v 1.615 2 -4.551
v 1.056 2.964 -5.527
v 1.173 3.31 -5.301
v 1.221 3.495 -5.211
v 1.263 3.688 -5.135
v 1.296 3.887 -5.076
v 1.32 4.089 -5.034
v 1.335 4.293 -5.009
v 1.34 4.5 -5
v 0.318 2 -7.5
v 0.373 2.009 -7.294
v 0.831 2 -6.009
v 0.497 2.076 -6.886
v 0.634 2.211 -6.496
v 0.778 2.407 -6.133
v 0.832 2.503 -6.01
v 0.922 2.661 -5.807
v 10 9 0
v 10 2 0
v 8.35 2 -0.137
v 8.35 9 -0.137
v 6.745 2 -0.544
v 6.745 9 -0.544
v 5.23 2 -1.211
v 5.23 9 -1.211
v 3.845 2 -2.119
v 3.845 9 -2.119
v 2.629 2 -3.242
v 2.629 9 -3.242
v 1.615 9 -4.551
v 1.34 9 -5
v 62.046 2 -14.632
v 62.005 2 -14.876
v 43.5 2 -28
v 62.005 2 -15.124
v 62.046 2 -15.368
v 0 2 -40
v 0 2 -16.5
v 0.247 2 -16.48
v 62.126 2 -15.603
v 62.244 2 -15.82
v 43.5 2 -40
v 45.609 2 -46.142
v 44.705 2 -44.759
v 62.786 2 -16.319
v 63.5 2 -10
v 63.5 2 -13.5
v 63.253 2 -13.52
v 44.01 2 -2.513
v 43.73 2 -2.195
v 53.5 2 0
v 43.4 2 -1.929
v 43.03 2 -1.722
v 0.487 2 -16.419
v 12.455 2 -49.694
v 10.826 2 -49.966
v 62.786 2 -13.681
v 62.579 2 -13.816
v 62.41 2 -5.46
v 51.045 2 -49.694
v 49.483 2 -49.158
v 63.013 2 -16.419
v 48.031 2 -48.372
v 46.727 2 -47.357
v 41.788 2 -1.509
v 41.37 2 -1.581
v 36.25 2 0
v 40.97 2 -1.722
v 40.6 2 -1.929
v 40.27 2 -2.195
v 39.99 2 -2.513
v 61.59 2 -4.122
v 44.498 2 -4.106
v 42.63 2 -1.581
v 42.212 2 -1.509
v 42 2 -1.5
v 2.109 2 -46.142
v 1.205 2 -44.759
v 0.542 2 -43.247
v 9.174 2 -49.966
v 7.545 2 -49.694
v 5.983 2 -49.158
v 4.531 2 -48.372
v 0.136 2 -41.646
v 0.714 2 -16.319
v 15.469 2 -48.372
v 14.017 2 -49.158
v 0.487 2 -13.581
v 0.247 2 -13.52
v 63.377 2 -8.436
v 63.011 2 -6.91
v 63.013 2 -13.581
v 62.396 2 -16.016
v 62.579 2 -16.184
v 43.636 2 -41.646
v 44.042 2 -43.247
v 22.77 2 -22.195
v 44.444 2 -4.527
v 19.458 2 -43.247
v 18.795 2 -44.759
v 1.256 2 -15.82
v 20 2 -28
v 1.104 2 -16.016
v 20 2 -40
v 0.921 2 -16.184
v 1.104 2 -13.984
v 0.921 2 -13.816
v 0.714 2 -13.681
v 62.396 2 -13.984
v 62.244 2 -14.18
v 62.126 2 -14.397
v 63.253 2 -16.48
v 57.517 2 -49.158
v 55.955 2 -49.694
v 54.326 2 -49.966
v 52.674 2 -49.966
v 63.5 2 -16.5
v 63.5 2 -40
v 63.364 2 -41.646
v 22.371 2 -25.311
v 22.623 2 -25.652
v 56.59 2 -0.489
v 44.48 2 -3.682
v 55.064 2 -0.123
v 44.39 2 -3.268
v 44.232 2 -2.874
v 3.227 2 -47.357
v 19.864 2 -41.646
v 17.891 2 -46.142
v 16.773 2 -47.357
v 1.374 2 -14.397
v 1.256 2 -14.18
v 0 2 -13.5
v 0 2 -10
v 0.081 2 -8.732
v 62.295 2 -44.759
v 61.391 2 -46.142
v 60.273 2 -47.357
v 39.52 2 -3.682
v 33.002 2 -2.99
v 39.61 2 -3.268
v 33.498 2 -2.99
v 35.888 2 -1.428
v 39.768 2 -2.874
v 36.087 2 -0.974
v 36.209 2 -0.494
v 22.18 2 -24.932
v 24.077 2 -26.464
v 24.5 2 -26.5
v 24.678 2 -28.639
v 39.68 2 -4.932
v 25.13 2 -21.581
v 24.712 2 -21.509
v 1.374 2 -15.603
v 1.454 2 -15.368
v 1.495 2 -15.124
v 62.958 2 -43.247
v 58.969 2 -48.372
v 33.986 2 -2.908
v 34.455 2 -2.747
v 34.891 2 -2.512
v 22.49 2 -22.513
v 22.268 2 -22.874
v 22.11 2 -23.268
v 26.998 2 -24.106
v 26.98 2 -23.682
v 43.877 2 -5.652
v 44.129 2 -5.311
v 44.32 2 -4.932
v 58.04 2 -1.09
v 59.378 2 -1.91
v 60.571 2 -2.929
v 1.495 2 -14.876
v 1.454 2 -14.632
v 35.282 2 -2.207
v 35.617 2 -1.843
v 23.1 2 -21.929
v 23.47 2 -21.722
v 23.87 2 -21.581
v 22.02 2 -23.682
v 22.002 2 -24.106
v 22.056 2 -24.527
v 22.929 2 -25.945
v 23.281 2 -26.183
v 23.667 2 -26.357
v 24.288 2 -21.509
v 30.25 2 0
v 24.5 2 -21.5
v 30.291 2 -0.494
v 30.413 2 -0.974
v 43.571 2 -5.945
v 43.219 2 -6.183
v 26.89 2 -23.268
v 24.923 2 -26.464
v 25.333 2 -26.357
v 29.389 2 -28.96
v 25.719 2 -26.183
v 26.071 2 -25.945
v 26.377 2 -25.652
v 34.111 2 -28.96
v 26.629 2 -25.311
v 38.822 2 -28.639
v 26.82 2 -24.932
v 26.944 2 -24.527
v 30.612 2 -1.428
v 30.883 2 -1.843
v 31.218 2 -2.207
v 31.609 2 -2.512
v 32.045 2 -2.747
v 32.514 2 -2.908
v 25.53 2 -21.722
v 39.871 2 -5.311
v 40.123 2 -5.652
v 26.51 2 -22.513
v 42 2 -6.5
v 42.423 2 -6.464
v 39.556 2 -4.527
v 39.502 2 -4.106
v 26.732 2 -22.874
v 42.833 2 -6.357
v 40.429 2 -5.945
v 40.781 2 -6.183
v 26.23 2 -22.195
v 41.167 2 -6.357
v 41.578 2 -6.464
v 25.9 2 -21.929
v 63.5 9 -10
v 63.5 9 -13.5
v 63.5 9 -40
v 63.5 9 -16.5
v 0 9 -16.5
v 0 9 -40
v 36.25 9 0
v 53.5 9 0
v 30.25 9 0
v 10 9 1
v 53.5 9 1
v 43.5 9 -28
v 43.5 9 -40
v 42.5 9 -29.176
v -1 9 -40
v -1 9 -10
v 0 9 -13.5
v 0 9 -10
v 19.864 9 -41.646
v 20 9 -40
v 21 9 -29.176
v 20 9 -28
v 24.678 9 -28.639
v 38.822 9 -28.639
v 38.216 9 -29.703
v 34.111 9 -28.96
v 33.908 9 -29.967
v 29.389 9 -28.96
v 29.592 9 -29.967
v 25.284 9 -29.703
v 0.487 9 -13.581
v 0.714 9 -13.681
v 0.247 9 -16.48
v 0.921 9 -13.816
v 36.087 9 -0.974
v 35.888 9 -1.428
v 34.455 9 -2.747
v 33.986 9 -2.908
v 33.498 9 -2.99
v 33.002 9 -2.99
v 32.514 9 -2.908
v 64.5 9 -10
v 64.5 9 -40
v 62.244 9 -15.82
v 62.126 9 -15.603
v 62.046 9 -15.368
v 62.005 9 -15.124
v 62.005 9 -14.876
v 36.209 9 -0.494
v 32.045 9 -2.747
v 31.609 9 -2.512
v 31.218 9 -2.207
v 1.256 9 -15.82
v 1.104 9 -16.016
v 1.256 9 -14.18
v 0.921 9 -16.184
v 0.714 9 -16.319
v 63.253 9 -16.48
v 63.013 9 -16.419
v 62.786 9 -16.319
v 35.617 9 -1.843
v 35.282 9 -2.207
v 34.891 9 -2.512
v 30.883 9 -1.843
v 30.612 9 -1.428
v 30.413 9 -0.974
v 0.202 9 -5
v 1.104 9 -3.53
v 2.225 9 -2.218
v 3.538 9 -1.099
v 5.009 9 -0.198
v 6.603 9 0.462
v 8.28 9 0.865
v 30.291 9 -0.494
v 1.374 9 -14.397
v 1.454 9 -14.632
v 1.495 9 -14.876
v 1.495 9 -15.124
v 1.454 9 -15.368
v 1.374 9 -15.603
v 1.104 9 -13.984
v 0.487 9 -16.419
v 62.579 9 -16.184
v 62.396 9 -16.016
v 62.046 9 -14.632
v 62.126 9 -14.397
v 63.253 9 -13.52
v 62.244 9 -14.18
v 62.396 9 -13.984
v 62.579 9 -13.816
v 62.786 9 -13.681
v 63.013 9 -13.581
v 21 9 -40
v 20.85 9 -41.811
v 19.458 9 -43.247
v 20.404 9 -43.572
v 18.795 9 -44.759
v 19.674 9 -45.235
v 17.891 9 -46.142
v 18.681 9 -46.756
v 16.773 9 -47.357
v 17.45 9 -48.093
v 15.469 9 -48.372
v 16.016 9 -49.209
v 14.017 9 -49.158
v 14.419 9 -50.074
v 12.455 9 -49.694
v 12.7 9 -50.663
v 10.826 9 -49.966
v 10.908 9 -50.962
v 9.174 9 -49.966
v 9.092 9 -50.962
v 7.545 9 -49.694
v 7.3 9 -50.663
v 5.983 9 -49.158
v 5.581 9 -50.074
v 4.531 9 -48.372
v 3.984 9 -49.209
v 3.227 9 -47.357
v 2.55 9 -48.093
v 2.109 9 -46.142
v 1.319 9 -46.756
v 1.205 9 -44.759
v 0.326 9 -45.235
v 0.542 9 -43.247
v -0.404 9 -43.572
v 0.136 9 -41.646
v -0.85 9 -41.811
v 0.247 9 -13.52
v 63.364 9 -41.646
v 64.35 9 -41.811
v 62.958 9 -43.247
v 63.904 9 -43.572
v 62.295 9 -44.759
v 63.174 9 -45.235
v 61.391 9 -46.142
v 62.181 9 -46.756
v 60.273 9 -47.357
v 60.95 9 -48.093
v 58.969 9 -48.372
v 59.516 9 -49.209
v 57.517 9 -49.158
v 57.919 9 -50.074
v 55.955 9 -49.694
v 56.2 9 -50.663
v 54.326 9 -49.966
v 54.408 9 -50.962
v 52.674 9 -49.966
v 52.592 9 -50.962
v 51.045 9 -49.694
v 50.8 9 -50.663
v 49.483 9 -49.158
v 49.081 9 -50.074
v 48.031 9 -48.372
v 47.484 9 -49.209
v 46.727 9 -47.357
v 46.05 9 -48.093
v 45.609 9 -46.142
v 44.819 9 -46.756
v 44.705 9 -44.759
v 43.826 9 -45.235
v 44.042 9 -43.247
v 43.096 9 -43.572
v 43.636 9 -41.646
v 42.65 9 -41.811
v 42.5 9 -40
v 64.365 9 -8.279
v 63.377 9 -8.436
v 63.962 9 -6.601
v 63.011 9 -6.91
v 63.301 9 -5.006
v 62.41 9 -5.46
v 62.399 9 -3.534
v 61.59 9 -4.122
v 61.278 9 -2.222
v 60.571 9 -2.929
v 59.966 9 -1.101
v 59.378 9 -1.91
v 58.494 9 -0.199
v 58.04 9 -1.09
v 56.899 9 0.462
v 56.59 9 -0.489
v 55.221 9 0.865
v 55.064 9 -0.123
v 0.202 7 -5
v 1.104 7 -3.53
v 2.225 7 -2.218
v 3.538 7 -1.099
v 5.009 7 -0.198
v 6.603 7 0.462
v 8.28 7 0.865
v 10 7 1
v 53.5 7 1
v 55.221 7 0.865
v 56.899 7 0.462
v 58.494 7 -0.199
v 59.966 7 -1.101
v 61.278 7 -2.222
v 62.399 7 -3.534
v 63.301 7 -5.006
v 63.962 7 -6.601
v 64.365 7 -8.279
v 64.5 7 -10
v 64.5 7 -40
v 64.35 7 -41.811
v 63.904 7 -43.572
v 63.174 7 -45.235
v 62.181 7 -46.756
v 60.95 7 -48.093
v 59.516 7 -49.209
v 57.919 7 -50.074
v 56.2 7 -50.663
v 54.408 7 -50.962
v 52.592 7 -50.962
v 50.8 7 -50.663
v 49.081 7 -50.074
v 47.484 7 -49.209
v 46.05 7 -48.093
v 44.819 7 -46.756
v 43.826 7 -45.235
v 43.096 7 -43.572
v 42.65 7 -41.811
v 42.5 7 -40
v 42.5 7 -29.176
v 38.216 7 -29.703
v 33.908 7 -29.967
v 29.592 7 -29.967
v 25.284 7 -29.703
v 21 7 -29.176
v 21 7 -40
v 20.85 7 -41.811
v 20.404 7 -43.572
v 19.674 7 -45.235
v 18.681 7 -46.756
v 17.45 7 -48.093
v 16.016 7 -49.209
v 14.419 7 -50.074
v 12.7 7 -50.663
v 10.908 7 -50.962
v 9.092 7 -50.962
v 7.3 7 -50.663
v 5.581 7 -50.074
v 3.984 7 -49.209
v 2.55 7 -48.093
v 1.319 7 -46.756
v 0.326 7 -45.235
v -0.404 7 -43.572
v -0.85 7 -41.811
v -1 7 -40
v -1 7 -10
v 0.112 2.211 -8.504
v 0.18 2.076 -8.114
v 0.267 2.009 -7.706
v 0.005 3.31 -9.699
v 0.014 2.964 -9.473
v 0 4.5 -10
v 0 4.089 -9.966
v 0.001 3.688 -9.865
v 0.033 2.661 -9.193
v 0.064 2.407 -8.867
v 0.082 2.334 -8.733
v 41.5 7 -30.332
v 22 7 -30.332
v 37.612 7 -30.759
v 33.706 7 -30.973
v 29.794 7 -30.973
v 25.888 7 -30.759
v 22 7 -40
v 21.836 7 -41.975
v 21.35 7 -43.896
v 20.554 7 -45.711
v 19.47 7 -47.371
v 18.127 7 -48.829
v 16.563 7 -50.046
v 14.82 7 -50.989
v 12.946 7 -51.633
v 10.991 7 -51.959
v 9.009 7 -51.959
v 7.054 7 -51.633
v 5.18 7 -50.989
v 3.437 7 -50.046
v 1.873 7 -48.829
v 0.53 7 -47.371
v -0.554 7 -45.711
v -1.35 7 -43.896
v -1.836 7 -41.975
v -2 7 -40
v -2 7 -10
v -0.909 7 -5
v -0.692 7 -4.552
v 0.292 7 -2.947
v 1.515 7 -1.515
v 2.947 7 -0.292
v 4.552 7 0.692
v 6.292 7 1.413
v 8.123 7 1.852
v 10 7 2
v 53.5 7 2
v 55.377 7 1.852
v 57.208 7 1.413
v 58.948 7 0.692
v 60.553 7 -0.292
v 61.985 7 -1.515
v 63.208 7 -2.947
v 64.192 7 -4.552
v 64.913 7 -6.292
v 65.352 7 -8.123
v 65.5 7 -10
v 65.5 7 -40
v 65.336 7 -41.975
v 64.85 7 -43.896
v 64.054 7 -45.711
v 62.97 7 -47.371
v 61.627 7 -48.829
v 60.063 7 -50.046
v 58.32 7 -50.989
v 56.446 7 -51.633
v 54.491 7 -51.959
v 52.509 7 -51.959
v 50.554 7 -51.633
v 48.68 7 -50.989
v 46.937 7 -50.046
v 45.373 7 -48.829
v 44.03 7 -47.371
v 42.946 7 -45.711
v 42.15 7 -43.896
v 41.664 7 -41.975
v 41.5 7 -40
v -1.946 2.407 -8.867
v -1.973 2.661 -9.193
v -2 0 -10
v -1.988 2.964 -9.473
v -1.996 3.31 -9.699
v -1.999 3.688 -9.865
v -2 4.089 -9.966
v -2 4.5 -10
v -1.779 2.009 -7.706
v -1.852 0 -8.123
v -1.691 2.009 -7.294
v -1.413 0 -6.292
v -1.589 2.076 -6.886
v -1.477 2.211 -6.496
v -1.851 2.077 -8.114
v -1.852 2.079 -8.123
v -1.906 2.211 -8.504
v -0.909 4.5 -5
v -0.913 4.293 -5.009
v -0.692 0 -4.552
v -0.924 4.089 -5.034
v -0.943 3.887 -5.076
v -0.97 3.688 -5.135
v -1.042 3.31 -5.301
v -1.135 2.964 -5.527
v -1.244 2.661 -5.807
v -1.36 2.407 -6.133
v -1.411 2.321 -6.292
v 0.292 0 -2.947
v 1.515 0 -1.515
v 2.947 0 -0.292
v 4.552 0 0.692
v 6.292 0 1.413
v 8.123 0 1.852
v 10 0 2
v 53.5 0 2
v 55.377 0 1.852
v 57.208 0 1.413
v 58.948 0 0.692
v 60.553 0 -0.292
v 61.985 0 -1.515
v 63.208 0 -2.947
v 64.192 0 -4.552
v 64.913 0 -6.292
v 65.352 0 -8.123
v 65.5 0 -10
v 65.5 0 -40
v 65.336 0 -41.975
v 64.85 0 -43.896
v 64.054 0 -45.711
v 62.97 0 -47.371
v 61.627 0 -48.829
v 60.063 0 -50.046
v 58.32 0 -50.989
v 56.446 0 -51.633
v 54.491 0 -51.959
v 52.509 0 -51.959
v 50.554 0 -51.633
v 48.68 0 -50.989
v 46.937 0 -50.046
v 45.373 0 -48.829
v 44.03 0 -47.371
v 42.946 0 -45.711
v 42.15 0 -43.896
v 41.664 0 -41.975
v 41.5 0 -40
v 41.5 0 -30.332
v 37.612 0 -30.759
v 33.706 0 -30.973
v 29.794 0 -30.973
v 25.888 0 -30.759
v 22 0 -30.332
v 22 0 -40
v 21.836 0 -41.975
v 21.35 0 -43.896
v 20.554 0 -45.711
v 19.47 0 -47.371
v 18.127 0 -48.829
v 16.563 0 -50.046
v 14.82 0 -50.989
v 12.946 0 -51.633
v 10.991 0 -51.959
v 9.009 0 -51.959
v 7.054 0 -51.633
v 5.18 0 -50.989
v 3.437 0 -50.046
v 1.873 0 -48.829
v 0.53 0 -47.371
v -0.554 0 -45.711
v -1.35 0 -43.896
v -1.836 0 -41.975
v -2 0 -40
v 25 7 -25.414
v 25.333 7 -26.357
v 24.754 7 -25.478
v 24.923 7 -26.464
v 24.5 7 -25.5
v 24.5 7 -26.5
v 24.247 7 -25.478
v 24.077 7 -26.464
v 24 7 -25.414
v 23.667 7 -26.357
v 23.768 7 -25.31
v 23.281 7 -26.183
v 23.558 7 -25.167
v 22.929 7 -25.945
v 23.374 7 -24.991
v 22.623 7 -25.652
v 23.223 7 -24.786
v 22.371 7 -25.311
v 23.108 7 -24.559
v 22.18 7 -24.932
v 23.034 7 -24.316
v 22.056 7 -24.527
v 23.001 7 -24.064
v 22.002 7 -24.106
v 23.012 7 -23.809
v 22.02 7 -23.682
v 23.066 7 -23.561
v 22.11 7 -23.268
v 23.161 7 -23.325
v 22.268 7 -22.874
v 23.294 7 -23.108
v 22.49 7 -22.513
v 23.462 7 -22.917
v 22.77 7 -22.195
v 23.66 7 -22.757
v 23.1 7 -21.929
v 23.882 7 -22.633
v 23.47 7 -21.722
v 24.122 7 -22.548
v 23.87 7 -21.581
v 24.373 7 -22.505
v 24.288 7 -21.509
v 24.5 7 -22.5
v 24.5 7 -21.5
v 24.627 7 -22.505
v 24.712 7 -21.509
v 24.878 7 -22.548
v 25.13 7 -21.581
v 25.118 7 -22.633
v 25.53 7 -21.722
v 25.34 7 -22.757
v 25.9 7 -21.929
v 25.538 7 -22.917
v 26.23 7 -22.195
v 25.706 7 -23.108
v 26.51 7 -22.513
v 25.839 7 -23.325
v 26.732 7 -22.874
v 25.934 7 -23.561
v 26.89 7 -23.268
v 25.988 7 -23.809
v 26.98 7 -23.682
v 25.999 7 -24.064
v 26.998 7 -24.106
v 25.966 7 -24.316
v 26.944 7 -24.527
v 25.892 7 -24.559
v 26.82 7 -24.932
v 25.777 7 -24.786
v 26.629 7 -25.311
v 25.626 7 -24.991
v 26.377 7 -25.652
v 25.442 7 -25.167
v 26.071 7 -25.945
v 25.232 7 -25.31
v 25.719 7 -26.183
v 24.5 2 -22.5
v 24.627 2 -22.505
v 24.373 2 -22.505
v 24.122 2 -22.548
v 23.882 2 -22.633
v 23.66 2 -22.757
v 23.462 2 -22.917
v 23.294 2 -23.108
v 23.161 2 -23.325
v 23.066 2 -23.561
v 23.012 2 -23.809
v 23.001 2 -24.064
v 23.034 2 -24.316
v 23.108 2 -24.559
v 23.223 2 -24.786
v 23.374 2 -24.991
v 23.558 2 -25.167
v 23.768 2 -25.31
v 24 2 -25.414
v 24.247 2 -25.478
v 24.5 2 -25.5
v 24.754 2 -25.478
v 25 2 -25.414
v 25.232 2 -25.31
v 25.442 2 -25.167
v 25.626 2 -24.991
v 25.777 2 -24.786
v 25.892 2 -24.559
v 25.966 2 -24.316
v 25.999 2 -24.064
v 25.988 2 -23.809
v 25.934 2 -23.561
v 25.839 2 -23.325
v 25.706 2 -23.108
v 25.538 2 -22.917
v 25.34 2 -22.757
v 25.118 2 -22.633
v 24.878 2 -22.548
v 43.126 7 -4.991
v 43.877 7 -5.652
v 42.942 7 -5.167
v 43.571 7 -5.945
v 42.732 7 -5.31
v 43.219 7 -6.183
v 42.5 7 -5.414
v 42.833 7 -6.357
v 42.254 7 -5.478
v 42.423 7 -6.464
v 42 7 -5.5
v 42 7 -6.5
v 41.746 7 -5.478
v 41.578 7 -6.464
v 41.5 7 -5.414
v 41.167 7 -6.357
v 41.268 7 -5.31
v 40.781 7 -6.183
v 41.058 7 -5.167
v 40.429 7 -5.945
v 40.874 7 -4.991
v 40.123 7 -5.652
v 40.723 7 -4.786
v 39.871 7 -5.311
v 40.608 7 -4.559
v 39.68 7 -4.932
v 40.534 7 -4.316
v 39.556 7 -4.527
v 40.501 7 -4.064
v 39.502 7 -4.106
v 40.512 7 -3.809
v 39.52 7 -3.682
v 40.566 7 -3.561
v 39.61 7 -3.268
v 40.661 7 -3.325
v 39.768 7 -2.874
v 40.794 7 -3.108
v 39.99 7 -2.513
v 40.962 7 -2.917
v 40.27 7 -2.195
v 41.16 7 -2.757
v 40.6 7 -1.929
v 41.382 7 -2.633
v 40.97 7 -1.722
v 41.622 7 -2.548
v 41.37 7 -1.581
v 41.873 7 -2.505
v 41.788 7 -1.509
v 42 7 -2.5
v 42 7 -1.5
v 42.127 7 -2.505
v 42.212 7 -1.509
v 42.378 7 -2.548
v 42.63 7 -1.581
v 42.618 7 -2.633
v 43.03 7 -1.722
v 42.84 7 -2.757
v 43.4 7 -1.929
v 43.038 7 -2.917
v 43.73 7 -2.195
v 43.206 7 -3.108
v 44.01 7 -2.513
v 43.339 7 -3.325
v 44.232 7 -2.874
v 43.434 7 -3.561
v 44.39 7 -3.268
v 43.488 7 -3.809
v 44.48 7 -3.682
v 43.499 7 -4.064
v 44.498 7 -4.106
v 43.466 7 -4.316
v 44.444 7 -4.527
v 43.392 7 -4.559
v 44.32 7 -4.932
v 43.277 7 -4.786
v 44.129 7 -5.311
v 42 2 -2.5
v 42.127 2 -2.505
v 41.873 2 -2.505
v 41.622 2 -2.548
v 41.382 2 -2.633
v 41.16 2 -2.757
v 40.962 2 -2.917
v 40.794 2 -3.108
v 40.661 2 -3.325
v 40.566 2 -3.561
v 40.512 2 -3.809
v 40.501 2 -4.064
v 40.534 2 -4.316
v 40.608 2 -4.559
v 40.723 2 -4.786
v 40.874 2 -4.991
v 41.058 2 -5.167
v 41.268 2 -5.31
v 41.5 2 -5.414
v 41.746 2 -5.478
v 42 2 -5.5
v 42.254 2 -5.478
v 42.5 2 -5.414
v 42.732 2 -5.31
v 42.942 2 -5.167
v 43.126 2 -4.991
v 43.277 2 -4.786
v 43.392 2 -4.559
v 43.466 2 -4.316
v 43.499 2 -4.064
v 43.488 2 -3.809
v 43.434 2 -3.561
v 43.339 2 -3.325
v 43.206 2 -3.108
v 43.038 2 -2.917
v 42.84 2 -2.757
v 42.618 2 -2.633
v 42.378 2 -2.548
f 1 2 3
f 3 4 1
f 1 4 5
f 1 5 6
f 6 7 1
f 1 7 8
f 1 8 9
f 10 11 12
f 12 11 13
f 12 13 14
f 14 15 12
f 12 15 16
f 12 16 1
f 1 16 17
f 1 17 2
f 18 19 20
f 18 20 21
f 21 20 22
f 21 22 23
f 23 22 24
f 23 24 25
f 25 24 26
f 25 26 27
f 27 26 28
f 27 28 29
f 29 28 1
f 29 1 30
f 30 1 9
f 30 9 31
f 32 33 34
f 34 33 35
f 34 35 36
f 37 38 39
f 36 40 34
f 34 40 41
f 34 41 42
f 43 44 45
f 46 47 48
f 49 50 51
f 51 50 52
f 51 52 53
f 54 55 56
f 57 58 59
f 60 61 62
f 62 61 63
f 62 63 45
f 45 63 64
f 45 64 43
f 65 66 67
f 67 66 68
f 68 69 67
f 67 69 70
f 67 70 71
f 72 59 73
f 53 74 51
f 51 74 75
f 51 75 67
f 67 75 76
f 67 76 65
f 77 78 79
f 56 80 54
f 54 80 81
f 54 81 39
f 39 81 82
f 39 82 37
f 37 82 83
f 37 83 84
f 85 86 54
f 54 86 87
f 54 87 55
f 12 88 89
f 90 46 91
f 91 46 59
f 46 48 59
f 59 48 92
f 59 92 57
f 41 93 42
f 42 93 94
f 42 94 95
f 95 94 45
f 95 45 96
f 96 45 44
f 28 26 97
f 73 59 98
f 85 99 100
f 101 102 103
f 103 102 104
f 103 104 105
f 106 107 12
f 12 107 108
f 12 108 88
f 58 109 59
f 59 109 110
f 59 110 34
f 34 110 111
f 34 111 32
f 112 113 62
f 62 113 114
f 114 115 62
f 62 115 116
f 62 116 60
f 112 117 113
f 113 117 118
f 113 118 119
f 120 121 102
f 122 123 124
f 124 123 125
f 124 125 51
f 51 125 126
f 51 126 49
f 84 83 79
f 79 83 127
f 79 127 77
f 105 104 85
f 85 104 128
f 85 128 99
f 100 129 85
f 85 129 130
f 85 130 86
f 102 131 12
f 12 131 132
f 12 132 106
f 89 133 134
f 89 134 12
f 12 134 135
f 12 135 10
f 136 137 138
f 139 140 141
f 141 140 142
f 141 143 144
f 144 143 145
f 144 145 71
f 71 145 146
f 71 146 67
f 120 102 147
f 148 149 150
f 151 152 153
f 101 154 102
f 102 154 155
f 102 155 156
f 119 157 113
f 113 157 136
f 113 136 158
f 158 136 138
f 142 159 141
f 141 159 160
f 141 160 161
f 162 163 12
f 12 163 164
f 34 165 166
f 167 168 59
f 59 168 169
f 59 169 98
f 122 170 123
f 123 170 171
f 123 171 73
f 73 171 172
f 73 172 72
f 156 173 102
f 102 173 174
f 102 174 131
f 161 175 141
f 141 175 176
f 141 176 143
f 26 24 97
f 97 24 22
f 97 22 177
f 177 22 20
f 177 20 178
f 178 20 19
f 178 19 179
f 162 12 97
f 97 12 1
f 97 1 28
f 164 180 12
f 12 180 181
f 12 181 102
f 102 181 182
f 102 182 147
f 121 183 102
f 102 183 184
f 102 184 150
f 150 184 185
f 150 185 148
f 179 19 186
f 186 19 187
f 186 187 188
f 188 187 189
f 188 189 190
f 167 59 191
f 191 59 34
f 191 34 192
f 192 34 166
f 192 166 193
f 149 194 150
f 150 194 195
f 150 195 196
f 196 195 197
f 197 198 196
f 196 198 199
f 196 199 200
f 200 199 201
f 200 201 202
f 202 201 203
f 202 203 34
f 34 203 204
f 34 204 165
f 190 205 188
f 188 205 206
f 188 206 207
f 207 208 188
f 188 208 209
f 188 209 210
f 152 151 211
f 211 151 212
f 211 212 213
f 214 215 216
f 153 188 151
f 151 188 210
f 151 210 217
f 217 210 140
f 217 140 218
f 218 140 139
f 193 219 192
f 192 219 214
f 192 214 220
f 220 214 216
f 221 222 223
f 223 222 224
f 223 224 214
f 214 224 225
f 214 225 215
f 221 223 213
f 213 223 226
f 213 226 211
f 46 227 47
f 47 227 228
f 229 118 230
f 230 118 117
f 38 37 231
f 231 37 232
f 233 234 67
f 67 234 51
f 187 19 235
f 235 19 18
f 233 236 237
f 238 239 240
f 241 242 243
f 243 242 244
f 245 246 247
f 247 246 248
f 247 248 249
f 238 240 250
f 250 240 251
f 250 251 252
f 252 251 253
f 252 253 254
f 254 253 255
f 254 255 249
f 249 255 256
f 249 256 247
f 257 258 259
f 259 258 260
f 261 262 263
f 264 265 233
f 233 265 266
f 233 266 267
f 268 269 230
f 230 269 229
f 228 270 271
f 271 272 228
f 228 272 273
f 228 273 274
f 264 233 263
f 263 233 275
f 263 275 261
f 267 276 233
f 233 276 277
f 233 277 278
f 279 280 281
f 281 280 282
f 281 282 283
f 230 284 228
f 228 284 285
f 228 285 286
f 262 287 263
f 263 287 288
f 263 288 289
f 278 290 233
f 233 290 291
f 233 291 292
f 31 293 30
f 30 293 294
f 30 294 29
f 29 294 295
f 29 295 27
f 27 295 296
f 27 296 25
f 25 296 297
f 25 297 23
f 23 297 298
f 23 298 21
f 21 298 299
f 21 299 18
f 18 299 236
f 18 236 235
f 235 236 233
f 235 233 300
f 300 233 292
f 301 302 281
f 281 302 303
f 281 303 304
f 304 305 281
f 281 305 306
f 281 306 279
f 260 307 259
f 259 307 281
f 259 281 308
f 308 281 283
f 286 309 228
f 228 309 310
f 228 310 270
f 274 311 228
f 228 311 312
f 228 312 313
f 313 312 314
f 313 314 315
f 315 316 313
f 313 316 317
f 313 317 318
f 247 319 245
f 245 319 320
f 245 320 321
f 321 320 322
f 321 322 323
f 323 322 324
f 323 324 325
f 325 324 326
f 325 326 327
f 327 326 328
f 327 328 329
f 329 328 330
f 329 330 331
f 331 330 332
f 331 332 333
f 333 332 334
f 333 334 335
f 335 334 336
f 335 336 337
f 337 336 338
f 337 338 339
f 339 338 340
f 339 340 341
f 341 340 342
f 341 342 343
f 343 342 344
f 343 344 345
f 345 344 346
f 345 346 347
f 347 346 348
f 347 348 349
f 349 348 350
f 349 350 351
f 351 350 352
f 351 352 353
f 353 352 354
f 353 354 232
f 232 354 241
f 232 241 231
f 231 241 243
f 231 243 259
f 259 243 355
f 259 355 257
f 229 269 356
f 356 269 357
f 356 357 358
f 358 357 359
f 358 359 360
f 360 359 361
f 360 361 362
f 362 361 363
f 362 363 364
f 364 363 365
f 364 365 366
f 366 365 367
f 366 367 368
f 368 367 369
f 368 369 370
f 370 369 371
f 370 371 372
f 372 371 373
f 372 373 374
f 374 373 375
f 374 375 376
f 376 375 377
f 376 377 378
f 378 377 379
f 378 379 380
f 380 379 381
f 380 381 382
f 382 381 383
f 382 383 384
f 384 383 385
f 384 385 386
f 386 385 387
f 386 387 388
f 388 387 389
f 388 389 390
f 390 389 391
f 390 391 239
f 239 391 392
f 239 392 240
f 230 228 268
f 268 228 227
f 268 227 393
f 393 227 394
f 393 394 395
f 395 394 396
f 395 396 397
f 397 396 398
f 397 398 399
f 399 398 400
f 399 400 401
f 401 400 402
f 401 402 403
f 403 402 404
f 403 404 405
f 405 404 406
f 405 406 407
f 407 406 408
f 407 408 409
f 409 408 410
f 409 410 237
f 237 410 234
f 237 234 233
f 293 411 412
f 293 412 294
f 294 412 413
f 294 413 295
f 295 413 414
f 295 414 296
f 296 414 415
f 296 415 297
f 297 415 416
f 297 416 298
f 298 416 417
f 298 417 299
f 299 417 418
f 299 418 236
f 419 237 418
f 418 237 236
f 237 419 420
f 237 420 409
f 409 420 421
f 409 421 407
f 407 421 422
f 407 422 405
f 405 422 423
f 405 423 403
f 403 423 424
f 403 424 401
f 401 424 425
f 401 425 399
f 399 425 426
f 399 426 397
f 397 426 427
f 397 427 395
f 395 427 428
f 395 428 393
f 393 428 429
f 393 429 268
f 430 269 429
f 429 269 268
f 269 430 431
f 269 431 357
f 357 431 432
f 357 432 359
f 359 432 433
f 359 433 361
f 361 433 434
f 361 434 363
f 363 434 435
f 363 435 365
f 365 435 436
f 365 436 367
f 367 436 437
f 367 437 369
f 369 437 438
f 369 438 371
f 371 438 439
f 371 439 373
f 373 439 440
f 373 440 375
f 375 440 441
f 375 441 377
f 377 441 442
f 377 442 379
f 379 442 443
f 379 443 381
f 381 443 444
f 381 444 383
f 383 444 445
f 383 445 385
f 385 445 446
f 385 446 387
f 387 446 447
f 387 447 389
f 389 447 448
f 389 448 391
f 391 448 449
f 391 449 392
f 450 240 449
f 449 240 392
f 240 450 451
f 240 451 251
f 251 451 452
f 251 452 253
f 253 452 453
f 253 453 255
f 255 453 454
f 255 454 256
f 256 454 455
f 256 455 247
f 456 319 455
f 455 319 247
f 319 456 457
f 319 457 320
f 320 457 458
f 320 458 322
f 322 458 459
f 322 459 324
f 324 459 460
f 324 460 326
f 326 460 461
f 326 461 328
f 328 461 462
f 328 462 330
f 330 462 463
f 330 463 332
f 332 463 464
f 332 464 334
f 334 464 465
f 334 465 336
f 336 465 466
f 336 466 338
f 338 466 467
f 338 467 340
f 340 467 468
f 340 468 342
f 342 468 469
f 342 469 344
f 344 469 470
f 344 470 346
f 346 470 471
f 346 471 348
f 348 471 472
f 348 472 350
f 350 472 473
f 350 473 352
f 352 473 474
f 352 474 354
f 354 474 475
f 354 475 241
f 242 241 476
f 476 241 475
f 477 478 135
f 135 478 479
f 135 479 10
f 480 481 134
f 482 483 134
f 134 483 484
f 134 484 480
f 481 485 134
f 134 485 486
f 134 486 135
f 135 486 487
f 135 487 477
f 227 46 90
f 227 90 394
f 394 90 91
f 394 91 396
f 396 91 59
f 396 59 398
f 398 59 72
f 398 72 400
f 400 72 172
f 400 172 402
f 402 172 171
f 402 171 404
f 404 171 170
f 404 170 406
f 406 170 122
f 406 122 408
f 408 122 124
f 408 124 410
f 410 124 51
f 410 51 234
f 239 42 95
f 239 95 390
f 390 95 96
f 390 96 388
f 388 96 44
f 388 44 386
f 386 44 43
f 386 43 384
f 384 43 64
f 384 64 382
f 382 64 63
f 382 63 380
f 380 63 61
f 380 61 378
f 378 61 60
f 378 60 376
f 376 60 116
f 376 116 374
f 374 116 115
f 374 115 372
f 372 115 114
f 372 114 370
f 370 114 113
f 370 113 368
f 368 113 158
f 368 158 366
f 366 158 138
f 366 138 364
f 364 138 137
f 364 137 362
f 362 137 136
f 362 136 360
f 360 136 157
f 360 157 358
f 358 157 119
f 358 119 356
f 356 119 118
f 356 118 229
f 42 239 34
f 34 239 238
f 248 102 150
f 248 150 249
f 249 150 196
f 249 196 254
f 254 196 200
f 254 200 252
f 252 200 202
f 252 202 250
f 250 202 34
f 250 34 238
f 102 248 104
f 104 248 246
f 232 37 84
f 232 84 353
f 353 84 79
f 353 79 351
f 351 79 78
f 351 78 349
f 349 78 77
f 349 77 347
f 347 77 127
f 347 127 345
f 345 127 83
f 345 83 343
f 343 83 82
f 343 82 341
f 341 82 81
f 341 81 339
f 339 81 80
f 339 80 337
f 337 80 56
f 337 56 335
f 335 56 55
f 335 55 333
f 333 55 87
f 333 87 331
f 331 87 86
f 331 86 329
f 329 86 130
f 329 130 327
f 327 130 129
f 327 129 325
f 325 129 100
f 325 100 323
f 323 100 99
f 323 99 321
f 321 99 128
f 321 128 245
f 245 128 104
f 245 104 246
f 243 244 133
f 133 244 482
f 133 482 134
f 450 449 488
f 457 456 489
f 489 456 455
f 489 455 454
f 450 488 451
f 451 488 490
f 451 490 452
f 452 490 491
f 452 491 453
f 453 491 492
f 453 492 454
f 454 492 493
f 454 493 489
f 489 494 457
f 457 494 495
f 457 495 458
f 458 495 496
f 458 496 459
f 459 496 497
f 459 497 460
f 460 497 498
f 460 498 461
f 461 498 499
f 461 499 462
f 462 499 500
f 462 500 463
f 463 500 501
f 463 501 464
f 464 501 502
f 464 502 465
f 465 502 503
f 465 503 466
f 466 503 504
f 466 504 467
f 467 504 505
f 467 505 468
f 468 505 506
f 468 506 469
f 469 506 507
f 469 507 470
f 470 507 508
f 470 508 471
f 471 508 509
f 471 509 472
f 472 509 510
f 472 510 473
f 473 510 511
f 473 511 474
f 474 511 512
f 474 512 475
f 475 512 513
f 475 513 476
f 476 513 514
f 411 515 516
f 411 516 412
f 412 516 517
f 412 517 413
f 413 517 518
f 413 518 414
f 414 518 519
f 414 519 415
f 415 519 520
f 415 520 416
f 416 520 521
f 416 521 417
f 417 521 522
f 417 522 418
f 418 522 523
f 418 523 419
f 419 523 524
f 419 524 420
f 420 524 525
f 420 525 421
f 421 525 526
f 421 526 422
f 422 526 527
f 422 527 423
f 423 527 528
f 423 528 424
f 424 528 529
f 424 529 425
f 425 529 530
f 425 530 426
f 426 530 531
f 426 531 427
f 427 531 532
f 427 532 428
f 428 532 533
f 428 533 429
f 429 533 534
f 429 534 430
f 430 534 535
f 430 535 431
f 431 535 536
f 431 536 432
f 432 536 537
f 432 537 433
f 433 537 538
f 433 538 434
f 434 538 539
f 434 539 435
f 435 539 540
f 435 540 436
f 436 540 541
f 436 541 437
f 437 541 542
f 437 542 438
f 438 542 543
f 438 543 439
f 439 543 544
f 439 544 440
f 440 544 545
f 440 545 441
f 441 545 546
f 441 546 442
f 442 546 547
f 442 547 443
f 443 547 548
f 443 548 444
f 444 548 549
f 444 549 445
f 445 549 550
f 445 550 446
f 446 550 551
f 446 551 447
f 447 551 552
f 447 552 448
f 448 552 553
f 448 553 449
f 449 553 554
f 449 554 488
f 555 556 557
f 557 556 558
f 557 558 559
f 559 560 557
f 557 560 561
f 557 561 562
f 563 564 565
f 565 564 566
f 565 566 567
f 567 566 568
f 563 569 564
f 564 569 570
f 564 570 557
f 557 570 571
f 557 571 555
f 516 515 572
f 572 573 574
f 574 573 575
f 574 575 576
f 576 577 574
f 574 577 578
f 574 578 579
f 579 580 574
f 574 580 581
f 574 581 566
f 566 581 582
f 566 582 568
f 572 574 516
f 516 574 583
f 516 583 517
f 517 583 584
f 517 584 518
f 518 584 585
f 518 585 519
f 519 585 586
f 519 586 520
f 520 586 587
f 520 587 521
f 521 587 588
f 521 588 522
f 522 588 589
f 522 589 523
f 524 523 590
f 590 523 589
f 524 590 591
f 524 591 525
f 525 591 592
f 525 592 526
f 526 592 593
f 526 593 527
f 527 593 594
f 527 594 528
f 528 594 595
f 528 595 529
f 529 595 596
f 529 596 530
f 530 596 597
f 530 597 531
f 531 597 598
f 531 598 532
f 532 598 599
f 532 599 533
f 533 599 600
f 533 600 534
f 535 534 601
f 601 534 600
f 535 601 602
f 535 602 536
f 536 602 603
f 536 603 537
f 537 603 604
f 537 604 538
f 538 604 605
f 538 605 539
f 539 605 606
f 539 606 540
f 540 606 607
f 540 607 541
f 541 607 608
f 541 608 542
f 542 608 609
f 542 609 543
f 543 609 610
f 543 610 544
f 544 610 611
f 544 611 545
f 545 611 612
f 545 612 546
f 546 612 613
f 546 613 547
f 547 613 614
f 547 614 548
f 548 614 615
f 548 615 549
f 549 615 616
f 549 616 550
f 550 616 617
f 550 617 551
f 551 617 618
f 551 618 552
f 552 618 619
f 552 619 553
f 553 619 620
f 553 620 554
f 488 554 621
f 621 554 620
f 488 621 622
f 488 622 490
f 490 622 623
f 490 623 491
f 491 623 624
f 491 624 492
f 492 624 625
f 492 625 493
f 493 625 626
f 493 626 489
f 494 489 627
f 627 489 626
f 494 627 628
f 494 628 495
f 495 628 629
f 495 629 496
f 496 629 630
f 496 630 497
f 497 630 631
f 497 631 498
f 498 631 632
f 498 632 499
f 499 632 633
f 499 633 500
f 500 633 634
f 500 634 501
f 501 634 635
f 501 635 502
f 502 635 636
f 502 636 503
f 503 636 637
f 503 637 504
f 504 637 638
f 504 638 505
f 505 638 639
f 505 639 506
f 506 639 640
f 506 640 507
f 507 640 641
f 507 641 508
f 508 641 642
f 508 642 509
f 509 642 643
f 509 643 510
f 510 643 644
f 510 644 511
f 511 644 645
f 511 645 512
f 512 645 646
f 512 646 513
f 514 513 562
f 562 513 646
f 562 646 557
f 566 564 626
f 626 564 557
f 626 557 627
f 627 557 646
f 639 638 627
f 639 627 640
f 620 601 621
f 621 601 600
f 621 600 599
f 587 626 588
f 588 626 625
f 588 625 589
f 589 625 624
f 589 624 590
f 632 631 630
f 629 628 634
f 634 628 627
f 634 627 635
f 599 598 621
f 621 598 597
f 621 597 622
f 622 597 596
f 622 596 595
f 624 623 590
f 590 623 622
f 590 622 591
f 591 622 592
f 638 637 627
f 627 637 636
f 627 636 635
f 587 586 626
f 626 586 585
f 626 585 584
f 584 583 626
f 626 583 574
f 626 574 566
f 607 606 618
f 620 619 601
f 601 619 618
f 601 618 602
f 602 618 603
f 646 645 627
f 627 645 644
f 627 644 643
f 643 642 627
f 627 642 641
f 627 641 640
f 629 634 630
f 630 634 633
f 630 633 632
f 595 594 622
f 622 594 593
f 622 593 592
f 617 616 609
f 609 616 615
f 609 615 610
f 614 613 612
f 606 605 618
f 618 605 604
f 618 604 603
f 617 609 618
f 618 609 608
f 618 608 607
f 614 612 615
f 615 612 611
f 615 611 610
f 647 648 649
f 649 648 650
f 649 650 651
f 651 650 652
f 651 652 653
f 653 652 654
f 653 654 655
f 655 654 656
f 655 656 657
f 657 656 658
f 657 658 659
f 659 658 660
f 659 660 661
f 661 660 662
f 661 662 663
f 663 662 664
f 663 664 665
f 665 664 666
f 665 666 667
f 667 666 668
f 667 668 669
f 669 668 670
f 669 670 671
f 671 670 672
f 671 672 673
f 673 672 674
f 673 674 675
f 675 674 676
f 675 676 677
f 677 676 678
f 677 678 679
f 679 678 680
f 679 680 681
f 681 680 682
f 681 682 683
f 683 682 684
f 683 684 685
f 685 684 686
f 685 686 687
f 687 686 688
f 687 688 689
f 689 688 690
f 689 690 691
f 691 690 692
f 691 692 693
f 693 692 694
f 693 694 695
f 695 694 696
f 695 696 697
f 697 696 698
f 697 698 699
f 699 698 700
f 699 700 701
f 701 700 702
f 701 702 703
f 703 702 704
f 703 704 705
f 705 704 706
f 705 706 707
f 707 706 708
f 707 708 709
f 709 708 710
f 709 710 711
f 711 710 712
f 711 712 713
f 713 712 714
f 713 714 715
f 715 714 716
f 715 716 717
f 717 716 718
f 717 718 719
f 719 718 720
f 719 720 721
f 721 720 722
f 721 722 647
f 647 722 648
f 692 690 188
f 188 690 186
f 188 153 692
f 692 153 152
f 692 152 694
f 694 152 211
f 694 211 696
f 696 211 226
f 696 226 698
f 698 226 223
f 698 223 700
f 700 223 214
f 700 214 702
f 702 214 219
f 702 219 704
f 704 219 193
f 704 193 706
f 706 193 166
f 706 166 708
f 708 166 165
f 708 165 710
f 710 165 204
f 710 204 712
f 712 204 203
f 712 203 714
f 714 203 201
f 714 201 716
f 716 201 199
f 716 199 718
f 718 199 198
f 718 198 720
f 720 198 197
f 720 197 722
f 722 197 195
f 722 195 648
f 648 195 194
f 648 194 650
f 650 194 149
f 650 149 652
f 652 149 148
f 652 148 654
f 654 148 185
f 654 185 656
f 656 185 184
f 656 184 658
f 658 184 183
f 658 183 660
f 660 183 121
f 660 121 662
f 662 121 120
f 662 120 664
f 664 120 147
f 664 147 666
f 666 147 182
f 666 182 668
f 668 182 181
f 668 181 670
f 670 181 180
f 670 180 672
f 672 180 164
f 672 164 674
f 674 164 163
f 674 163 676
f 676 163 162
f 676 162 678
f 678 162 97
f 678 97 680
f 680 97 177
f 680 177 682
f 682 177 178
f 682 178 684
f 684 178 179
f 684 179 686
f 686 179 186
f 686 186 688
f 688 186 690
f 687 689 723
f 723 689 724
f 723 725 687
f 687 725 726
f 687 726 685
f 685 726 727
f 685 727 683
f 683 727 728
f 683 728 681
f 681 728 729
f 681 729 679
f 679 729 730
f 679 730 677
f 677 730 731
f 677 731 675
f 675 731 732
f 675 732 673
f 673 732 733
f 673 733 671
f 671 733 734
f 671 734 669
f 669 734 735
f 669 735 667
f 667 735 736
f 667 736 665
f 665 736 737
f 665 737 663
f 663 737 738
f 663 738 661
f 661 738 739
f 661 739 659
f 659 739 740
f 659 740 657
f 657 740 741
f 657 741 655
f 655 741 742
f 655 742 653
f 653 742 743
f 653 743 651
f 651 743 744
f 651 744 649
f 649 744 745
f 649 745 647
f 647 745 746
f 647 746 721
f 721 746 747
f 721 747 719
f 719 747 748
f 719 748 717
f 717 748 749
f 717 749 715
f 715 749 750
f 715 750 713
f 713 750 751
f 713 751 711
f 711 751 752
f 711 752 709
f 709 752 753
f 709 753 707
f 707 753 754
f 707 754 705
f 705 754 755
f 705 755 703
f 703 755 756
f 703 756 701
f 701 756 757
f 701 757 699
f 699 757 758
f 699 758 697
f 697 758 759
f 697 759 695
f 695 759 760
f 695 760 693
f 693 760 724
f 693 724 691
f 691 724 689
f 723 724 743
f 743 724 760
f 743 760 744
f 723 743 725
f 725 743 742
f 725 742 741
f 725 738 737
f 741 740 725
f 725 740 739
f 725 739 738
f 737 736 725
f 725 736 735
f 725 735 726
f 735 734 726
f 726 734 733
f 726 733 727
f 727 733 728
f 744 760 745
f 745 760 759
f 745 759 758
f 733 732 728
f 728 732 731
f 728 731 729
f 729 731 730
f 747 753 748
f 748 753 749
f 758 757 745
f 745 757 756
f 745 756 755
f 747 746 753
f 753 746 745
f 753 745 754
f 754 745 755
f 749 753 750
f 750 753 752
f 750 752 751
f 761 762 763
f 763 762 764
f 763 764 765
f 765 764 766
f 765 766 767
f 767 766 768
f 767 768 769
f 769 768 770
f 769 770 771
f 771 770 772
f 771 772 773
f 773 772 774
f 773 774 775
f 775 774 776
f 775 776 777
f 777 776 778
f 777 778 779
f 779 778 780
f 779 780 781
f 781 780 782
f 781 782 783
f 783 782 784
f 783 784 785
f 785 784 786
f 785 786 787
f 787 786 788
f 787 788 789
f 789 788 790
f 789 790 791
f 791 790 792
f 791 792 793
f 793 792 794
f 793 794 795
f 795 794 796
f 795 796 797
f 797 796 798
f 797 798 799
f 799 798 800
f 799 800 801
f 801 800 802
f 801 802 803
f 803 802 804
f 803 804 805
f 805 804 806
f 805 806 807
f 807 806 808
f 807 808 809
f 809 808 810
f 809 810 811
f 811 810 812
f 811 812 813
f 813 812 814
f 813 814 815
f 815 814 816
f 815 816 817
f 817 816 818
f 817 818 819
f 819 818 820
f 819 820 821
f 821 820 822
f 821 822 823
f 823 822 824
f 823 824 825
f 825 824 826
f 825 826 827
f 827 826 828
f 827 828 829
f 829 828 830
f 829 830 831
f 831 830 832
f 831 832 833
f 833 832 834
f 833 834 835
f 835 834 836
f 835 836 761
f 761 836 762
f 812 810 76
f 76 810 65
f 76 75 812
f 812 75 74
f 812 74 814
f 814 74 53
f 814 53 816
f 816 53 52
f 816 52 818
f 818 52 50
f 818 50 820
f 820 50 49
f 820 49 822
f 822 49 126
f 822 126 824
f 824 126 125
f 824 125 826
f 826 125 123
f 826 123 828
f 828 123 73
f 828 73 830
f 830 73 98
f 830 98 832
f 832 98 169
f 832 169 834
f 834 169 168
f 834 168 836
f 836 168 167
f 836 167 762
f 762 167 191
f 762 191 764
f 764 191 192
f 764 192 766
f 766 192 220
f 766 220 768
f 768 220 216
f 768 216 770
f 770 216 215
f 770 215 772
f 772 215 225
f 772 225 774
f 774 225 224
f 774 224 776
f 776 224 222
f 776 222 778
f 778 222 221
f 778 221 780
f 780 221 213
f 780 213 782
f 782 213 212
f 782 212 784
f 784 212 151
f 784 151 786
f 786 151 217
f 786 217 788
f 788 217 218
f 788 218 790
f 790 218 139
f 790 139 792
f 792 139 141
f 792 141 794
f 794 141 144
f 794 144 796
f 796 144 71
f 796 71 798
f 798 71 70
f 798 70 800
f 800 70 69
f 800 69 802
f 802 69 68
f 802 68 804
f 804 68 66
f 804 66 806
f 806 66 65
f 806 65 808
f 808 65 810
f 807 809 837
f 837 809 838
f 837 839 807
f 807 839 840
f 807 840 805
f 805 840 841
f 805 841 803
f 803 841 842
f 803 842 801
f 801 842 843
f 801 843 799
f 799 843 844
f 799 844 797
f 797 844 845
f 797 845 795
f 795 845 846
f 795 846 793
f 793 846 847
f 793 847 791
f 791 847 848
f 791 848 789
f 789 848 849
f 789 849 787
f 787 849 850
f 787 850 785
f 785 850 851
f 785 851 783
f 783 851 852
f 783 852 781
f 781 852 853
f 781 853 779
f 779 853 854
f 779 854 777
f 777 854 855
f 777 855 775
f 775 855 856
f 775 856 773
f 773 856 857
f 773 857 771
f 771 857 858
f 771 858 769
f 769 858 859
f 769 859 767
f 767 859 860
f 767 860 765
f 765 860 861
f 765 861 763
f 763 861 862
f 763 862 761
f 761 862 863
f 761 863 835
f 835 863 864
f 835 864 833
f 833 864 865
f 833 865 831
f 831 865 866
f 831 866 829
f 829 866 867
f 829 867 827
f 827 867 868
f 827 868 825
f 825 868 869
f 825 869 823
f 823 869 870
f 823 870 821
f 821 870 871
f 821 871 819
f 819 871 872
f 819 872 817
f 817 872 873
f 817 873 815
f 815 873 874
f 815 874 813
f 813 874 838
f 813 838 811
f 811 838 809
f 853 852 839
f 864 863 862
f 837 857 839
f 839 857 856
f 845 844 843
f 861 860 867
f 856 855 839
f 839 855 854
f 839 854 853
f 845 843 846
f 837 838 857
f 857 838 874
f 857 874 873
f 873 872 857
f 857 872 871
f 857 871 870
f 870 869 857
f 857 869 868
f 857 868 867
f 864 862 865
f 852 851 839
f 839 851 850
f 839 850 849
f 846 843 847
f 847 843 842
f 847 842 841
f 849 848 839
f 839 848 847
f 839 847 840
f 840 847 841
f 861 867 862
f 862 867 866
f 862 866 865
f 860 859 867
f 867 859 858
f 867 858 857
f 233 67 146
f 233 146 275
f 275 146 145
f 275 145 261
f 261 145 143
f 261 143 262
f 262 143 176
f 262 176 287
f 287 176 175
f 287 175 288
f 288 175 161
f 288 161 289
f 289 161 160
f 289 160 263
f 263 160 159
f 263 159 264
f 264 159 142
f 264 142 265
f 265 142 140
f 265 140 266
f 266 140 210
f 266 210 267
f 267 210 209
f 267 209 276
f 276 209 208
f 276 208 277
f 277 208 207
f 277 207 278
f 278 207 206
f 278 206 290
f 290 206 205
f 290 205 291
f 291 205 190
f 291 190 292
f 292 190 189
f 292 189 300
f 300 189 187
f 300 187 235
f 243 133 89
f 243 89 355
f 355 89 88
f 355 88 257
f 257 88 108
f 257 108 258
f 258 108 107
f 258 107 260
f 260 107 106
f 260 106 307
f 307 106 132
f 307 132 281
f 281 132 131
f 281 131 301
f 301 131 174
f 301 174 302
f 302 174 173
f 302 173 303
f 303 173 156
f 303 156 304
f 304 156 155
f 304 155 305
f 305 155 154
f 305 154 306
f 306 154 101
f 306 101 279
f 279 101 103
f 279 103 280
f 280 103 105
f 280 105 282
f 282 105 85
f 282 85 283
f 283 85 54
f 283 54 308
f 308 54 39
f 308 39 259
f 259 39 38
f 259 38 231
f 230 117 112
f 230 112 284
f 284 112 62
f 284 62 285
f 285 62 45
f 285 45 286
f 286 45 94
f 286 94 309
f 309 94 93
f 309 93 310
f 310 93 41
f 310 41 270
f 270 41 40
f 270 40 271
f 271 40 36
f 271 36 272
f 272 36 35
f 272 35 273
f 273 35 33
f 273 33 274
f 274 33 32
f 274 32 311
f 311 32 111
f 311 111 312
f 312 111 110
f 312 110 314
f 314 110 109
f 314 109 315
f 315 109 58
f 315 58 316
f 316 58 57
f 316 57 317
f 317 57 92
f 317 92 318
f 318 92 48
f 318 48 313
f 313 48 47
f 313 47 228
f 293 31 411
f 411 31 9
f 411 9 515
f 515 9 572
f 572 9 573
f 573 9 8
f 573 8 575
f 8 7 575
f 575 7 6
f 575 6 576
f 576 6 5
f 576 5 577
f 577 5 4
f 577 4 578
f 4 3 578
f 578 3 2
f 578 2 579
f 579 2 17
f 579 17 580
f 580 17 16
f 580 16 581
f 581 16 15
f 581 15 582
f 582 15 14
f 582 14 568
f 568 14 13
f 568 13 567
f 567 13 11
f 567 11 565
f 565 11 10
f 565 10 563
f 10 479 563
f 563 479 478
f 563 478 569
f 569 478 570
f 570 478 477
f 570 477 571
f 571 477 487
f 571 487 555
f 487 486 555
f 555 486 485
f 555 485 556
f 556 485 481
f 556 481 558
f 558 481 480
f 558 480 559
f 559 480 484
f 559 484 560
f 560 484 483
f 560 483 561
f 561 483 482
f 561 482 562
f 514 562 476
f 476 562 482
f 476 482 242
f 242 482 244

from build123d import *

# Parameters (mm, degrees)
EXTRUDE_1_DEPTH     = 2
EXTRUDE_3_DEPTH     = 9
EXTRUDE_5_DEPTH     = 7
SKETCH_3_R          = 2.5
SKETCH_3_R_2        = 1.5
EXTRUDE_8_DEPTH     = 5
EXTRUDE_9_DEPTH     = 7
CUT_EXTRUDE_2_DEPTH = 5


with BuildPart() as part:
    # 草图1 → 凸台-拉伸1 (new body)
    with BuildSketch(Plane(origin=(0, 0, 0), x_dir=(1, 0, 0), z_dir=(0, 1, 0))):
        with BuildLine():
            Line((0, 28), (0, 40))
            ThreePointArc((0, 40), (10, 50), (20, 40))
            Line((20, 40), (20, 28))
            ThreePointArc((20, 28), (31.75, 29), (43.5, 28))
            Line((43.5, 28), (43.5, 40))
            ThreePointArc((43.5, 40), (53.5, 50), (63.5, 40))
            Line((63.5, 40), (63.5, 28))
            Line((63.5, 28), (63.5, 10))
            ThreePointArc((63.5, 10), (60.571067812, 2.928932188), (53.5, 0))
            Line((53.5, 0), (10, 0))
            ThreePointArc((10, 0), (2.928932188, 2.928932188), (0, 10))
            Line((0, 10), (0, 28))
        make_face()
    extrude(amount=EXTRUDE_1_DEPTH)

    # 草图1<4> → 凸台-拉伸3 (add)
    with BuildSketch(Plane(origin=(0, 0, 0), x_dir=(1, 0, 0), z_dir=(0, 1, 0))):
        with BuildLine():
            Line((42.5, 40), (42.5, 29.175957135))
            ThreePointArc((42.5, 29.175957135), (31.75, 30), (21, 29.175957135))
            Line((21, 29.175957135), (21, 40))
            ThreePointArc((21, 40), (10, 51), (-1, 40))
            Line((-1, 40), (-1, 28))
            Line((-1, 28), (-1, 10))
            ThreePointArc((-1, 10), (2.221825407, 2.221825407), (10, -1))
            Line((10, -1), (53.5, -1))
            ThreePointArc((53.5, -1), (61.278174593, 2.221825407), (64.5, 10))
            Line((64.5, 10), (64.5, 28))
            Line((64.5, 28), (64.5, 40))
            ThreePointArc((64.5, 40), (53.5, 51), (42.5, 40))
        make_face()
        with BuildLine():
            Line((0, 28), (0, 40))
            ThreePointArc((0, 40), (10, 50), (20, 40))
            Line((20, 40), (20, 28))
            ThreePointArc((20, 28), (31.75, 29), (43.5, 28))
            Line((43.5, 28), (43.5, 40))
            ThreePointArc((43.5, 40), (53.5, 50), (63.5, 40))
            Line((63.5, 40), (63.5, 28))
            Line((63.5, 28), (63.5, 10))
            ThreePointArc((63.5, 10), (60.571067812, 2.928932188), (53.5, 0))
            Line((53.5, 0), (10, 0))
            ThreePointArc((10, 0), (2.928932188, 2.928932188), (0, 10))
            Line((0, 10), (0, 28))
        make_face(mode=Mode.SUBTRACT)
    extrude(amount=EXTRUDE_3_DEPTH)

    # 草图1<6> → 凸台-拉伸5 (add)
    with BuildSketch(Plane(origin=(0, 0, 0), x_dir=(1, 0, 0), z_dir=(0, 1, 0))):
        with BuildLine():
            Line((10, -2), (53.5, -2))
            ThreePointArc((53.5, -2), (61.985281374, 1.514718626), (65.5, 10))
            Line((65.5, 10), (65.5, 28))
            Line((65.5, 28), (65.5, 40))
            ThreePointArc((65.5, 40), (53.5, 52), (41.5, 40))
            Line((41.5, 40), (41.5, 30.332402365))
            ThreePointArc((41.5, 30.332402365), (31.75, 31), (22, 30.332402365))
            Line((22, 30.332402365), (22, 40))
            ThreePointArc((22, 40), (10, 52), (-2, 40))
            Line((-2, 40), (-2, 28))
            Line((-2, 28), (-2, 10))
            ThreePointArc((-2, 10), (1.514718626, 1.514718626), (10, -2))
        make_face()
        with BuildLine():
            Line((42.5, 40), (42.5, 29.175957135))
            ThreePointArc((42.5, 29.175957135), (31.75, 30), (21, 29.175957135))
            Line((21, 29.175957135), (21, 40))
            ThreePointArc((21, 40), (10, 51), (-1, 40))
            Line((-1, 40), (-1, 28))
            Line((-1, 28), (-1, 10))
            ThreePointArc((-1, 10), (2.221825407, 2.221825407), (10, -1))
            Line((10, -1), (53.5, -1))
            ThreePointArc((53.5, -1), (61.278174593, 2.221825407), (64.5, 10))
            Line((64.5, 10), (64.5, 28))
            Line((64.5, 28), (64.5, 40))
            ThreePointArc((64.5, 40), (53.5, 51), (42.5, 40))
        make_face(mode=Mode.SUBTRACT)
    extrude(amount=EXTRUDE_5_DEPTH)

    # 草图3 → 凸台-拉伸8 (add)
    # profile 1 of 2: a face of its own
    with BuildSketch(Plane(origin=(0, 2, 0), x_dir=(1, 0, 0), z_dir=(0, 1, 0))):
        with Locations((24.5, 24)):
            Circle(SKETCH_3_R)
        with Locations((24.5, 24)):
            Circle(SKETCH_3_R_2, mode=Mode.SUBTRACT)
    # profile 2 of 2: a face of its own
    with BuildSketch(Plane(origin=(0, 2, 0), x_dir=(1, 0, 0), z_dir=(0, 1, 0))):
        with Locations((42, 4)):
            Circle(SKETCH_3_R)
        with Locations((42, 4)):
            Circle(SKETCH_3_R_2, mode=Mode.SUBTRACT)
    extrude(amount=EXTRUDE_8_DEPTH)

    # 草图3<7> → 凸台-拉伸9 (add)
    with BuildSketch(Plane(origin=(0, 2, 0), x_dir=(1, 0, 0), z_dir=(0, 1, 0))):
        with BuildLine():
            Line((63.5, 13.5), (63.5, 16.5))
            ThreePointArc((63.5, 16.5), (62, 15), (63.5, 13.5))
        make_face()
        with BuildLine():
            Line((0, 16.5), (0, 13.5))
            ThreePointArc((0, 13.5), (1.5, 15), (0, 16.5))
        make_face()
        with BuildLine():
            ThreePointArc((36.25, 0), (33.25, 3), (30.25, 0))
            Line((30.25, 0), (36.25, 0))
        make_face()
    extrude(amount=EXTRUDE_9_DEPTH)

    # 草图4 → 切除-拉伸2 (cut)
    with BuildSketch(Plane.ZY.offset(2)):
        with BuildLine():
            Line((-10, 4.5), (-10, 9))
            Line((-10, 9), (-5, 9))
            Line((-5, 9), (-5, 4.5))
            ThreePointArc((-5, 4.5), (-7.5, 2), (-10, 4.5))
        make_face()
    extrude(amount=-CUT_EXTRUDE_2_DEPTH, mode=Mode.SUBTRACT)


solid = part.part
